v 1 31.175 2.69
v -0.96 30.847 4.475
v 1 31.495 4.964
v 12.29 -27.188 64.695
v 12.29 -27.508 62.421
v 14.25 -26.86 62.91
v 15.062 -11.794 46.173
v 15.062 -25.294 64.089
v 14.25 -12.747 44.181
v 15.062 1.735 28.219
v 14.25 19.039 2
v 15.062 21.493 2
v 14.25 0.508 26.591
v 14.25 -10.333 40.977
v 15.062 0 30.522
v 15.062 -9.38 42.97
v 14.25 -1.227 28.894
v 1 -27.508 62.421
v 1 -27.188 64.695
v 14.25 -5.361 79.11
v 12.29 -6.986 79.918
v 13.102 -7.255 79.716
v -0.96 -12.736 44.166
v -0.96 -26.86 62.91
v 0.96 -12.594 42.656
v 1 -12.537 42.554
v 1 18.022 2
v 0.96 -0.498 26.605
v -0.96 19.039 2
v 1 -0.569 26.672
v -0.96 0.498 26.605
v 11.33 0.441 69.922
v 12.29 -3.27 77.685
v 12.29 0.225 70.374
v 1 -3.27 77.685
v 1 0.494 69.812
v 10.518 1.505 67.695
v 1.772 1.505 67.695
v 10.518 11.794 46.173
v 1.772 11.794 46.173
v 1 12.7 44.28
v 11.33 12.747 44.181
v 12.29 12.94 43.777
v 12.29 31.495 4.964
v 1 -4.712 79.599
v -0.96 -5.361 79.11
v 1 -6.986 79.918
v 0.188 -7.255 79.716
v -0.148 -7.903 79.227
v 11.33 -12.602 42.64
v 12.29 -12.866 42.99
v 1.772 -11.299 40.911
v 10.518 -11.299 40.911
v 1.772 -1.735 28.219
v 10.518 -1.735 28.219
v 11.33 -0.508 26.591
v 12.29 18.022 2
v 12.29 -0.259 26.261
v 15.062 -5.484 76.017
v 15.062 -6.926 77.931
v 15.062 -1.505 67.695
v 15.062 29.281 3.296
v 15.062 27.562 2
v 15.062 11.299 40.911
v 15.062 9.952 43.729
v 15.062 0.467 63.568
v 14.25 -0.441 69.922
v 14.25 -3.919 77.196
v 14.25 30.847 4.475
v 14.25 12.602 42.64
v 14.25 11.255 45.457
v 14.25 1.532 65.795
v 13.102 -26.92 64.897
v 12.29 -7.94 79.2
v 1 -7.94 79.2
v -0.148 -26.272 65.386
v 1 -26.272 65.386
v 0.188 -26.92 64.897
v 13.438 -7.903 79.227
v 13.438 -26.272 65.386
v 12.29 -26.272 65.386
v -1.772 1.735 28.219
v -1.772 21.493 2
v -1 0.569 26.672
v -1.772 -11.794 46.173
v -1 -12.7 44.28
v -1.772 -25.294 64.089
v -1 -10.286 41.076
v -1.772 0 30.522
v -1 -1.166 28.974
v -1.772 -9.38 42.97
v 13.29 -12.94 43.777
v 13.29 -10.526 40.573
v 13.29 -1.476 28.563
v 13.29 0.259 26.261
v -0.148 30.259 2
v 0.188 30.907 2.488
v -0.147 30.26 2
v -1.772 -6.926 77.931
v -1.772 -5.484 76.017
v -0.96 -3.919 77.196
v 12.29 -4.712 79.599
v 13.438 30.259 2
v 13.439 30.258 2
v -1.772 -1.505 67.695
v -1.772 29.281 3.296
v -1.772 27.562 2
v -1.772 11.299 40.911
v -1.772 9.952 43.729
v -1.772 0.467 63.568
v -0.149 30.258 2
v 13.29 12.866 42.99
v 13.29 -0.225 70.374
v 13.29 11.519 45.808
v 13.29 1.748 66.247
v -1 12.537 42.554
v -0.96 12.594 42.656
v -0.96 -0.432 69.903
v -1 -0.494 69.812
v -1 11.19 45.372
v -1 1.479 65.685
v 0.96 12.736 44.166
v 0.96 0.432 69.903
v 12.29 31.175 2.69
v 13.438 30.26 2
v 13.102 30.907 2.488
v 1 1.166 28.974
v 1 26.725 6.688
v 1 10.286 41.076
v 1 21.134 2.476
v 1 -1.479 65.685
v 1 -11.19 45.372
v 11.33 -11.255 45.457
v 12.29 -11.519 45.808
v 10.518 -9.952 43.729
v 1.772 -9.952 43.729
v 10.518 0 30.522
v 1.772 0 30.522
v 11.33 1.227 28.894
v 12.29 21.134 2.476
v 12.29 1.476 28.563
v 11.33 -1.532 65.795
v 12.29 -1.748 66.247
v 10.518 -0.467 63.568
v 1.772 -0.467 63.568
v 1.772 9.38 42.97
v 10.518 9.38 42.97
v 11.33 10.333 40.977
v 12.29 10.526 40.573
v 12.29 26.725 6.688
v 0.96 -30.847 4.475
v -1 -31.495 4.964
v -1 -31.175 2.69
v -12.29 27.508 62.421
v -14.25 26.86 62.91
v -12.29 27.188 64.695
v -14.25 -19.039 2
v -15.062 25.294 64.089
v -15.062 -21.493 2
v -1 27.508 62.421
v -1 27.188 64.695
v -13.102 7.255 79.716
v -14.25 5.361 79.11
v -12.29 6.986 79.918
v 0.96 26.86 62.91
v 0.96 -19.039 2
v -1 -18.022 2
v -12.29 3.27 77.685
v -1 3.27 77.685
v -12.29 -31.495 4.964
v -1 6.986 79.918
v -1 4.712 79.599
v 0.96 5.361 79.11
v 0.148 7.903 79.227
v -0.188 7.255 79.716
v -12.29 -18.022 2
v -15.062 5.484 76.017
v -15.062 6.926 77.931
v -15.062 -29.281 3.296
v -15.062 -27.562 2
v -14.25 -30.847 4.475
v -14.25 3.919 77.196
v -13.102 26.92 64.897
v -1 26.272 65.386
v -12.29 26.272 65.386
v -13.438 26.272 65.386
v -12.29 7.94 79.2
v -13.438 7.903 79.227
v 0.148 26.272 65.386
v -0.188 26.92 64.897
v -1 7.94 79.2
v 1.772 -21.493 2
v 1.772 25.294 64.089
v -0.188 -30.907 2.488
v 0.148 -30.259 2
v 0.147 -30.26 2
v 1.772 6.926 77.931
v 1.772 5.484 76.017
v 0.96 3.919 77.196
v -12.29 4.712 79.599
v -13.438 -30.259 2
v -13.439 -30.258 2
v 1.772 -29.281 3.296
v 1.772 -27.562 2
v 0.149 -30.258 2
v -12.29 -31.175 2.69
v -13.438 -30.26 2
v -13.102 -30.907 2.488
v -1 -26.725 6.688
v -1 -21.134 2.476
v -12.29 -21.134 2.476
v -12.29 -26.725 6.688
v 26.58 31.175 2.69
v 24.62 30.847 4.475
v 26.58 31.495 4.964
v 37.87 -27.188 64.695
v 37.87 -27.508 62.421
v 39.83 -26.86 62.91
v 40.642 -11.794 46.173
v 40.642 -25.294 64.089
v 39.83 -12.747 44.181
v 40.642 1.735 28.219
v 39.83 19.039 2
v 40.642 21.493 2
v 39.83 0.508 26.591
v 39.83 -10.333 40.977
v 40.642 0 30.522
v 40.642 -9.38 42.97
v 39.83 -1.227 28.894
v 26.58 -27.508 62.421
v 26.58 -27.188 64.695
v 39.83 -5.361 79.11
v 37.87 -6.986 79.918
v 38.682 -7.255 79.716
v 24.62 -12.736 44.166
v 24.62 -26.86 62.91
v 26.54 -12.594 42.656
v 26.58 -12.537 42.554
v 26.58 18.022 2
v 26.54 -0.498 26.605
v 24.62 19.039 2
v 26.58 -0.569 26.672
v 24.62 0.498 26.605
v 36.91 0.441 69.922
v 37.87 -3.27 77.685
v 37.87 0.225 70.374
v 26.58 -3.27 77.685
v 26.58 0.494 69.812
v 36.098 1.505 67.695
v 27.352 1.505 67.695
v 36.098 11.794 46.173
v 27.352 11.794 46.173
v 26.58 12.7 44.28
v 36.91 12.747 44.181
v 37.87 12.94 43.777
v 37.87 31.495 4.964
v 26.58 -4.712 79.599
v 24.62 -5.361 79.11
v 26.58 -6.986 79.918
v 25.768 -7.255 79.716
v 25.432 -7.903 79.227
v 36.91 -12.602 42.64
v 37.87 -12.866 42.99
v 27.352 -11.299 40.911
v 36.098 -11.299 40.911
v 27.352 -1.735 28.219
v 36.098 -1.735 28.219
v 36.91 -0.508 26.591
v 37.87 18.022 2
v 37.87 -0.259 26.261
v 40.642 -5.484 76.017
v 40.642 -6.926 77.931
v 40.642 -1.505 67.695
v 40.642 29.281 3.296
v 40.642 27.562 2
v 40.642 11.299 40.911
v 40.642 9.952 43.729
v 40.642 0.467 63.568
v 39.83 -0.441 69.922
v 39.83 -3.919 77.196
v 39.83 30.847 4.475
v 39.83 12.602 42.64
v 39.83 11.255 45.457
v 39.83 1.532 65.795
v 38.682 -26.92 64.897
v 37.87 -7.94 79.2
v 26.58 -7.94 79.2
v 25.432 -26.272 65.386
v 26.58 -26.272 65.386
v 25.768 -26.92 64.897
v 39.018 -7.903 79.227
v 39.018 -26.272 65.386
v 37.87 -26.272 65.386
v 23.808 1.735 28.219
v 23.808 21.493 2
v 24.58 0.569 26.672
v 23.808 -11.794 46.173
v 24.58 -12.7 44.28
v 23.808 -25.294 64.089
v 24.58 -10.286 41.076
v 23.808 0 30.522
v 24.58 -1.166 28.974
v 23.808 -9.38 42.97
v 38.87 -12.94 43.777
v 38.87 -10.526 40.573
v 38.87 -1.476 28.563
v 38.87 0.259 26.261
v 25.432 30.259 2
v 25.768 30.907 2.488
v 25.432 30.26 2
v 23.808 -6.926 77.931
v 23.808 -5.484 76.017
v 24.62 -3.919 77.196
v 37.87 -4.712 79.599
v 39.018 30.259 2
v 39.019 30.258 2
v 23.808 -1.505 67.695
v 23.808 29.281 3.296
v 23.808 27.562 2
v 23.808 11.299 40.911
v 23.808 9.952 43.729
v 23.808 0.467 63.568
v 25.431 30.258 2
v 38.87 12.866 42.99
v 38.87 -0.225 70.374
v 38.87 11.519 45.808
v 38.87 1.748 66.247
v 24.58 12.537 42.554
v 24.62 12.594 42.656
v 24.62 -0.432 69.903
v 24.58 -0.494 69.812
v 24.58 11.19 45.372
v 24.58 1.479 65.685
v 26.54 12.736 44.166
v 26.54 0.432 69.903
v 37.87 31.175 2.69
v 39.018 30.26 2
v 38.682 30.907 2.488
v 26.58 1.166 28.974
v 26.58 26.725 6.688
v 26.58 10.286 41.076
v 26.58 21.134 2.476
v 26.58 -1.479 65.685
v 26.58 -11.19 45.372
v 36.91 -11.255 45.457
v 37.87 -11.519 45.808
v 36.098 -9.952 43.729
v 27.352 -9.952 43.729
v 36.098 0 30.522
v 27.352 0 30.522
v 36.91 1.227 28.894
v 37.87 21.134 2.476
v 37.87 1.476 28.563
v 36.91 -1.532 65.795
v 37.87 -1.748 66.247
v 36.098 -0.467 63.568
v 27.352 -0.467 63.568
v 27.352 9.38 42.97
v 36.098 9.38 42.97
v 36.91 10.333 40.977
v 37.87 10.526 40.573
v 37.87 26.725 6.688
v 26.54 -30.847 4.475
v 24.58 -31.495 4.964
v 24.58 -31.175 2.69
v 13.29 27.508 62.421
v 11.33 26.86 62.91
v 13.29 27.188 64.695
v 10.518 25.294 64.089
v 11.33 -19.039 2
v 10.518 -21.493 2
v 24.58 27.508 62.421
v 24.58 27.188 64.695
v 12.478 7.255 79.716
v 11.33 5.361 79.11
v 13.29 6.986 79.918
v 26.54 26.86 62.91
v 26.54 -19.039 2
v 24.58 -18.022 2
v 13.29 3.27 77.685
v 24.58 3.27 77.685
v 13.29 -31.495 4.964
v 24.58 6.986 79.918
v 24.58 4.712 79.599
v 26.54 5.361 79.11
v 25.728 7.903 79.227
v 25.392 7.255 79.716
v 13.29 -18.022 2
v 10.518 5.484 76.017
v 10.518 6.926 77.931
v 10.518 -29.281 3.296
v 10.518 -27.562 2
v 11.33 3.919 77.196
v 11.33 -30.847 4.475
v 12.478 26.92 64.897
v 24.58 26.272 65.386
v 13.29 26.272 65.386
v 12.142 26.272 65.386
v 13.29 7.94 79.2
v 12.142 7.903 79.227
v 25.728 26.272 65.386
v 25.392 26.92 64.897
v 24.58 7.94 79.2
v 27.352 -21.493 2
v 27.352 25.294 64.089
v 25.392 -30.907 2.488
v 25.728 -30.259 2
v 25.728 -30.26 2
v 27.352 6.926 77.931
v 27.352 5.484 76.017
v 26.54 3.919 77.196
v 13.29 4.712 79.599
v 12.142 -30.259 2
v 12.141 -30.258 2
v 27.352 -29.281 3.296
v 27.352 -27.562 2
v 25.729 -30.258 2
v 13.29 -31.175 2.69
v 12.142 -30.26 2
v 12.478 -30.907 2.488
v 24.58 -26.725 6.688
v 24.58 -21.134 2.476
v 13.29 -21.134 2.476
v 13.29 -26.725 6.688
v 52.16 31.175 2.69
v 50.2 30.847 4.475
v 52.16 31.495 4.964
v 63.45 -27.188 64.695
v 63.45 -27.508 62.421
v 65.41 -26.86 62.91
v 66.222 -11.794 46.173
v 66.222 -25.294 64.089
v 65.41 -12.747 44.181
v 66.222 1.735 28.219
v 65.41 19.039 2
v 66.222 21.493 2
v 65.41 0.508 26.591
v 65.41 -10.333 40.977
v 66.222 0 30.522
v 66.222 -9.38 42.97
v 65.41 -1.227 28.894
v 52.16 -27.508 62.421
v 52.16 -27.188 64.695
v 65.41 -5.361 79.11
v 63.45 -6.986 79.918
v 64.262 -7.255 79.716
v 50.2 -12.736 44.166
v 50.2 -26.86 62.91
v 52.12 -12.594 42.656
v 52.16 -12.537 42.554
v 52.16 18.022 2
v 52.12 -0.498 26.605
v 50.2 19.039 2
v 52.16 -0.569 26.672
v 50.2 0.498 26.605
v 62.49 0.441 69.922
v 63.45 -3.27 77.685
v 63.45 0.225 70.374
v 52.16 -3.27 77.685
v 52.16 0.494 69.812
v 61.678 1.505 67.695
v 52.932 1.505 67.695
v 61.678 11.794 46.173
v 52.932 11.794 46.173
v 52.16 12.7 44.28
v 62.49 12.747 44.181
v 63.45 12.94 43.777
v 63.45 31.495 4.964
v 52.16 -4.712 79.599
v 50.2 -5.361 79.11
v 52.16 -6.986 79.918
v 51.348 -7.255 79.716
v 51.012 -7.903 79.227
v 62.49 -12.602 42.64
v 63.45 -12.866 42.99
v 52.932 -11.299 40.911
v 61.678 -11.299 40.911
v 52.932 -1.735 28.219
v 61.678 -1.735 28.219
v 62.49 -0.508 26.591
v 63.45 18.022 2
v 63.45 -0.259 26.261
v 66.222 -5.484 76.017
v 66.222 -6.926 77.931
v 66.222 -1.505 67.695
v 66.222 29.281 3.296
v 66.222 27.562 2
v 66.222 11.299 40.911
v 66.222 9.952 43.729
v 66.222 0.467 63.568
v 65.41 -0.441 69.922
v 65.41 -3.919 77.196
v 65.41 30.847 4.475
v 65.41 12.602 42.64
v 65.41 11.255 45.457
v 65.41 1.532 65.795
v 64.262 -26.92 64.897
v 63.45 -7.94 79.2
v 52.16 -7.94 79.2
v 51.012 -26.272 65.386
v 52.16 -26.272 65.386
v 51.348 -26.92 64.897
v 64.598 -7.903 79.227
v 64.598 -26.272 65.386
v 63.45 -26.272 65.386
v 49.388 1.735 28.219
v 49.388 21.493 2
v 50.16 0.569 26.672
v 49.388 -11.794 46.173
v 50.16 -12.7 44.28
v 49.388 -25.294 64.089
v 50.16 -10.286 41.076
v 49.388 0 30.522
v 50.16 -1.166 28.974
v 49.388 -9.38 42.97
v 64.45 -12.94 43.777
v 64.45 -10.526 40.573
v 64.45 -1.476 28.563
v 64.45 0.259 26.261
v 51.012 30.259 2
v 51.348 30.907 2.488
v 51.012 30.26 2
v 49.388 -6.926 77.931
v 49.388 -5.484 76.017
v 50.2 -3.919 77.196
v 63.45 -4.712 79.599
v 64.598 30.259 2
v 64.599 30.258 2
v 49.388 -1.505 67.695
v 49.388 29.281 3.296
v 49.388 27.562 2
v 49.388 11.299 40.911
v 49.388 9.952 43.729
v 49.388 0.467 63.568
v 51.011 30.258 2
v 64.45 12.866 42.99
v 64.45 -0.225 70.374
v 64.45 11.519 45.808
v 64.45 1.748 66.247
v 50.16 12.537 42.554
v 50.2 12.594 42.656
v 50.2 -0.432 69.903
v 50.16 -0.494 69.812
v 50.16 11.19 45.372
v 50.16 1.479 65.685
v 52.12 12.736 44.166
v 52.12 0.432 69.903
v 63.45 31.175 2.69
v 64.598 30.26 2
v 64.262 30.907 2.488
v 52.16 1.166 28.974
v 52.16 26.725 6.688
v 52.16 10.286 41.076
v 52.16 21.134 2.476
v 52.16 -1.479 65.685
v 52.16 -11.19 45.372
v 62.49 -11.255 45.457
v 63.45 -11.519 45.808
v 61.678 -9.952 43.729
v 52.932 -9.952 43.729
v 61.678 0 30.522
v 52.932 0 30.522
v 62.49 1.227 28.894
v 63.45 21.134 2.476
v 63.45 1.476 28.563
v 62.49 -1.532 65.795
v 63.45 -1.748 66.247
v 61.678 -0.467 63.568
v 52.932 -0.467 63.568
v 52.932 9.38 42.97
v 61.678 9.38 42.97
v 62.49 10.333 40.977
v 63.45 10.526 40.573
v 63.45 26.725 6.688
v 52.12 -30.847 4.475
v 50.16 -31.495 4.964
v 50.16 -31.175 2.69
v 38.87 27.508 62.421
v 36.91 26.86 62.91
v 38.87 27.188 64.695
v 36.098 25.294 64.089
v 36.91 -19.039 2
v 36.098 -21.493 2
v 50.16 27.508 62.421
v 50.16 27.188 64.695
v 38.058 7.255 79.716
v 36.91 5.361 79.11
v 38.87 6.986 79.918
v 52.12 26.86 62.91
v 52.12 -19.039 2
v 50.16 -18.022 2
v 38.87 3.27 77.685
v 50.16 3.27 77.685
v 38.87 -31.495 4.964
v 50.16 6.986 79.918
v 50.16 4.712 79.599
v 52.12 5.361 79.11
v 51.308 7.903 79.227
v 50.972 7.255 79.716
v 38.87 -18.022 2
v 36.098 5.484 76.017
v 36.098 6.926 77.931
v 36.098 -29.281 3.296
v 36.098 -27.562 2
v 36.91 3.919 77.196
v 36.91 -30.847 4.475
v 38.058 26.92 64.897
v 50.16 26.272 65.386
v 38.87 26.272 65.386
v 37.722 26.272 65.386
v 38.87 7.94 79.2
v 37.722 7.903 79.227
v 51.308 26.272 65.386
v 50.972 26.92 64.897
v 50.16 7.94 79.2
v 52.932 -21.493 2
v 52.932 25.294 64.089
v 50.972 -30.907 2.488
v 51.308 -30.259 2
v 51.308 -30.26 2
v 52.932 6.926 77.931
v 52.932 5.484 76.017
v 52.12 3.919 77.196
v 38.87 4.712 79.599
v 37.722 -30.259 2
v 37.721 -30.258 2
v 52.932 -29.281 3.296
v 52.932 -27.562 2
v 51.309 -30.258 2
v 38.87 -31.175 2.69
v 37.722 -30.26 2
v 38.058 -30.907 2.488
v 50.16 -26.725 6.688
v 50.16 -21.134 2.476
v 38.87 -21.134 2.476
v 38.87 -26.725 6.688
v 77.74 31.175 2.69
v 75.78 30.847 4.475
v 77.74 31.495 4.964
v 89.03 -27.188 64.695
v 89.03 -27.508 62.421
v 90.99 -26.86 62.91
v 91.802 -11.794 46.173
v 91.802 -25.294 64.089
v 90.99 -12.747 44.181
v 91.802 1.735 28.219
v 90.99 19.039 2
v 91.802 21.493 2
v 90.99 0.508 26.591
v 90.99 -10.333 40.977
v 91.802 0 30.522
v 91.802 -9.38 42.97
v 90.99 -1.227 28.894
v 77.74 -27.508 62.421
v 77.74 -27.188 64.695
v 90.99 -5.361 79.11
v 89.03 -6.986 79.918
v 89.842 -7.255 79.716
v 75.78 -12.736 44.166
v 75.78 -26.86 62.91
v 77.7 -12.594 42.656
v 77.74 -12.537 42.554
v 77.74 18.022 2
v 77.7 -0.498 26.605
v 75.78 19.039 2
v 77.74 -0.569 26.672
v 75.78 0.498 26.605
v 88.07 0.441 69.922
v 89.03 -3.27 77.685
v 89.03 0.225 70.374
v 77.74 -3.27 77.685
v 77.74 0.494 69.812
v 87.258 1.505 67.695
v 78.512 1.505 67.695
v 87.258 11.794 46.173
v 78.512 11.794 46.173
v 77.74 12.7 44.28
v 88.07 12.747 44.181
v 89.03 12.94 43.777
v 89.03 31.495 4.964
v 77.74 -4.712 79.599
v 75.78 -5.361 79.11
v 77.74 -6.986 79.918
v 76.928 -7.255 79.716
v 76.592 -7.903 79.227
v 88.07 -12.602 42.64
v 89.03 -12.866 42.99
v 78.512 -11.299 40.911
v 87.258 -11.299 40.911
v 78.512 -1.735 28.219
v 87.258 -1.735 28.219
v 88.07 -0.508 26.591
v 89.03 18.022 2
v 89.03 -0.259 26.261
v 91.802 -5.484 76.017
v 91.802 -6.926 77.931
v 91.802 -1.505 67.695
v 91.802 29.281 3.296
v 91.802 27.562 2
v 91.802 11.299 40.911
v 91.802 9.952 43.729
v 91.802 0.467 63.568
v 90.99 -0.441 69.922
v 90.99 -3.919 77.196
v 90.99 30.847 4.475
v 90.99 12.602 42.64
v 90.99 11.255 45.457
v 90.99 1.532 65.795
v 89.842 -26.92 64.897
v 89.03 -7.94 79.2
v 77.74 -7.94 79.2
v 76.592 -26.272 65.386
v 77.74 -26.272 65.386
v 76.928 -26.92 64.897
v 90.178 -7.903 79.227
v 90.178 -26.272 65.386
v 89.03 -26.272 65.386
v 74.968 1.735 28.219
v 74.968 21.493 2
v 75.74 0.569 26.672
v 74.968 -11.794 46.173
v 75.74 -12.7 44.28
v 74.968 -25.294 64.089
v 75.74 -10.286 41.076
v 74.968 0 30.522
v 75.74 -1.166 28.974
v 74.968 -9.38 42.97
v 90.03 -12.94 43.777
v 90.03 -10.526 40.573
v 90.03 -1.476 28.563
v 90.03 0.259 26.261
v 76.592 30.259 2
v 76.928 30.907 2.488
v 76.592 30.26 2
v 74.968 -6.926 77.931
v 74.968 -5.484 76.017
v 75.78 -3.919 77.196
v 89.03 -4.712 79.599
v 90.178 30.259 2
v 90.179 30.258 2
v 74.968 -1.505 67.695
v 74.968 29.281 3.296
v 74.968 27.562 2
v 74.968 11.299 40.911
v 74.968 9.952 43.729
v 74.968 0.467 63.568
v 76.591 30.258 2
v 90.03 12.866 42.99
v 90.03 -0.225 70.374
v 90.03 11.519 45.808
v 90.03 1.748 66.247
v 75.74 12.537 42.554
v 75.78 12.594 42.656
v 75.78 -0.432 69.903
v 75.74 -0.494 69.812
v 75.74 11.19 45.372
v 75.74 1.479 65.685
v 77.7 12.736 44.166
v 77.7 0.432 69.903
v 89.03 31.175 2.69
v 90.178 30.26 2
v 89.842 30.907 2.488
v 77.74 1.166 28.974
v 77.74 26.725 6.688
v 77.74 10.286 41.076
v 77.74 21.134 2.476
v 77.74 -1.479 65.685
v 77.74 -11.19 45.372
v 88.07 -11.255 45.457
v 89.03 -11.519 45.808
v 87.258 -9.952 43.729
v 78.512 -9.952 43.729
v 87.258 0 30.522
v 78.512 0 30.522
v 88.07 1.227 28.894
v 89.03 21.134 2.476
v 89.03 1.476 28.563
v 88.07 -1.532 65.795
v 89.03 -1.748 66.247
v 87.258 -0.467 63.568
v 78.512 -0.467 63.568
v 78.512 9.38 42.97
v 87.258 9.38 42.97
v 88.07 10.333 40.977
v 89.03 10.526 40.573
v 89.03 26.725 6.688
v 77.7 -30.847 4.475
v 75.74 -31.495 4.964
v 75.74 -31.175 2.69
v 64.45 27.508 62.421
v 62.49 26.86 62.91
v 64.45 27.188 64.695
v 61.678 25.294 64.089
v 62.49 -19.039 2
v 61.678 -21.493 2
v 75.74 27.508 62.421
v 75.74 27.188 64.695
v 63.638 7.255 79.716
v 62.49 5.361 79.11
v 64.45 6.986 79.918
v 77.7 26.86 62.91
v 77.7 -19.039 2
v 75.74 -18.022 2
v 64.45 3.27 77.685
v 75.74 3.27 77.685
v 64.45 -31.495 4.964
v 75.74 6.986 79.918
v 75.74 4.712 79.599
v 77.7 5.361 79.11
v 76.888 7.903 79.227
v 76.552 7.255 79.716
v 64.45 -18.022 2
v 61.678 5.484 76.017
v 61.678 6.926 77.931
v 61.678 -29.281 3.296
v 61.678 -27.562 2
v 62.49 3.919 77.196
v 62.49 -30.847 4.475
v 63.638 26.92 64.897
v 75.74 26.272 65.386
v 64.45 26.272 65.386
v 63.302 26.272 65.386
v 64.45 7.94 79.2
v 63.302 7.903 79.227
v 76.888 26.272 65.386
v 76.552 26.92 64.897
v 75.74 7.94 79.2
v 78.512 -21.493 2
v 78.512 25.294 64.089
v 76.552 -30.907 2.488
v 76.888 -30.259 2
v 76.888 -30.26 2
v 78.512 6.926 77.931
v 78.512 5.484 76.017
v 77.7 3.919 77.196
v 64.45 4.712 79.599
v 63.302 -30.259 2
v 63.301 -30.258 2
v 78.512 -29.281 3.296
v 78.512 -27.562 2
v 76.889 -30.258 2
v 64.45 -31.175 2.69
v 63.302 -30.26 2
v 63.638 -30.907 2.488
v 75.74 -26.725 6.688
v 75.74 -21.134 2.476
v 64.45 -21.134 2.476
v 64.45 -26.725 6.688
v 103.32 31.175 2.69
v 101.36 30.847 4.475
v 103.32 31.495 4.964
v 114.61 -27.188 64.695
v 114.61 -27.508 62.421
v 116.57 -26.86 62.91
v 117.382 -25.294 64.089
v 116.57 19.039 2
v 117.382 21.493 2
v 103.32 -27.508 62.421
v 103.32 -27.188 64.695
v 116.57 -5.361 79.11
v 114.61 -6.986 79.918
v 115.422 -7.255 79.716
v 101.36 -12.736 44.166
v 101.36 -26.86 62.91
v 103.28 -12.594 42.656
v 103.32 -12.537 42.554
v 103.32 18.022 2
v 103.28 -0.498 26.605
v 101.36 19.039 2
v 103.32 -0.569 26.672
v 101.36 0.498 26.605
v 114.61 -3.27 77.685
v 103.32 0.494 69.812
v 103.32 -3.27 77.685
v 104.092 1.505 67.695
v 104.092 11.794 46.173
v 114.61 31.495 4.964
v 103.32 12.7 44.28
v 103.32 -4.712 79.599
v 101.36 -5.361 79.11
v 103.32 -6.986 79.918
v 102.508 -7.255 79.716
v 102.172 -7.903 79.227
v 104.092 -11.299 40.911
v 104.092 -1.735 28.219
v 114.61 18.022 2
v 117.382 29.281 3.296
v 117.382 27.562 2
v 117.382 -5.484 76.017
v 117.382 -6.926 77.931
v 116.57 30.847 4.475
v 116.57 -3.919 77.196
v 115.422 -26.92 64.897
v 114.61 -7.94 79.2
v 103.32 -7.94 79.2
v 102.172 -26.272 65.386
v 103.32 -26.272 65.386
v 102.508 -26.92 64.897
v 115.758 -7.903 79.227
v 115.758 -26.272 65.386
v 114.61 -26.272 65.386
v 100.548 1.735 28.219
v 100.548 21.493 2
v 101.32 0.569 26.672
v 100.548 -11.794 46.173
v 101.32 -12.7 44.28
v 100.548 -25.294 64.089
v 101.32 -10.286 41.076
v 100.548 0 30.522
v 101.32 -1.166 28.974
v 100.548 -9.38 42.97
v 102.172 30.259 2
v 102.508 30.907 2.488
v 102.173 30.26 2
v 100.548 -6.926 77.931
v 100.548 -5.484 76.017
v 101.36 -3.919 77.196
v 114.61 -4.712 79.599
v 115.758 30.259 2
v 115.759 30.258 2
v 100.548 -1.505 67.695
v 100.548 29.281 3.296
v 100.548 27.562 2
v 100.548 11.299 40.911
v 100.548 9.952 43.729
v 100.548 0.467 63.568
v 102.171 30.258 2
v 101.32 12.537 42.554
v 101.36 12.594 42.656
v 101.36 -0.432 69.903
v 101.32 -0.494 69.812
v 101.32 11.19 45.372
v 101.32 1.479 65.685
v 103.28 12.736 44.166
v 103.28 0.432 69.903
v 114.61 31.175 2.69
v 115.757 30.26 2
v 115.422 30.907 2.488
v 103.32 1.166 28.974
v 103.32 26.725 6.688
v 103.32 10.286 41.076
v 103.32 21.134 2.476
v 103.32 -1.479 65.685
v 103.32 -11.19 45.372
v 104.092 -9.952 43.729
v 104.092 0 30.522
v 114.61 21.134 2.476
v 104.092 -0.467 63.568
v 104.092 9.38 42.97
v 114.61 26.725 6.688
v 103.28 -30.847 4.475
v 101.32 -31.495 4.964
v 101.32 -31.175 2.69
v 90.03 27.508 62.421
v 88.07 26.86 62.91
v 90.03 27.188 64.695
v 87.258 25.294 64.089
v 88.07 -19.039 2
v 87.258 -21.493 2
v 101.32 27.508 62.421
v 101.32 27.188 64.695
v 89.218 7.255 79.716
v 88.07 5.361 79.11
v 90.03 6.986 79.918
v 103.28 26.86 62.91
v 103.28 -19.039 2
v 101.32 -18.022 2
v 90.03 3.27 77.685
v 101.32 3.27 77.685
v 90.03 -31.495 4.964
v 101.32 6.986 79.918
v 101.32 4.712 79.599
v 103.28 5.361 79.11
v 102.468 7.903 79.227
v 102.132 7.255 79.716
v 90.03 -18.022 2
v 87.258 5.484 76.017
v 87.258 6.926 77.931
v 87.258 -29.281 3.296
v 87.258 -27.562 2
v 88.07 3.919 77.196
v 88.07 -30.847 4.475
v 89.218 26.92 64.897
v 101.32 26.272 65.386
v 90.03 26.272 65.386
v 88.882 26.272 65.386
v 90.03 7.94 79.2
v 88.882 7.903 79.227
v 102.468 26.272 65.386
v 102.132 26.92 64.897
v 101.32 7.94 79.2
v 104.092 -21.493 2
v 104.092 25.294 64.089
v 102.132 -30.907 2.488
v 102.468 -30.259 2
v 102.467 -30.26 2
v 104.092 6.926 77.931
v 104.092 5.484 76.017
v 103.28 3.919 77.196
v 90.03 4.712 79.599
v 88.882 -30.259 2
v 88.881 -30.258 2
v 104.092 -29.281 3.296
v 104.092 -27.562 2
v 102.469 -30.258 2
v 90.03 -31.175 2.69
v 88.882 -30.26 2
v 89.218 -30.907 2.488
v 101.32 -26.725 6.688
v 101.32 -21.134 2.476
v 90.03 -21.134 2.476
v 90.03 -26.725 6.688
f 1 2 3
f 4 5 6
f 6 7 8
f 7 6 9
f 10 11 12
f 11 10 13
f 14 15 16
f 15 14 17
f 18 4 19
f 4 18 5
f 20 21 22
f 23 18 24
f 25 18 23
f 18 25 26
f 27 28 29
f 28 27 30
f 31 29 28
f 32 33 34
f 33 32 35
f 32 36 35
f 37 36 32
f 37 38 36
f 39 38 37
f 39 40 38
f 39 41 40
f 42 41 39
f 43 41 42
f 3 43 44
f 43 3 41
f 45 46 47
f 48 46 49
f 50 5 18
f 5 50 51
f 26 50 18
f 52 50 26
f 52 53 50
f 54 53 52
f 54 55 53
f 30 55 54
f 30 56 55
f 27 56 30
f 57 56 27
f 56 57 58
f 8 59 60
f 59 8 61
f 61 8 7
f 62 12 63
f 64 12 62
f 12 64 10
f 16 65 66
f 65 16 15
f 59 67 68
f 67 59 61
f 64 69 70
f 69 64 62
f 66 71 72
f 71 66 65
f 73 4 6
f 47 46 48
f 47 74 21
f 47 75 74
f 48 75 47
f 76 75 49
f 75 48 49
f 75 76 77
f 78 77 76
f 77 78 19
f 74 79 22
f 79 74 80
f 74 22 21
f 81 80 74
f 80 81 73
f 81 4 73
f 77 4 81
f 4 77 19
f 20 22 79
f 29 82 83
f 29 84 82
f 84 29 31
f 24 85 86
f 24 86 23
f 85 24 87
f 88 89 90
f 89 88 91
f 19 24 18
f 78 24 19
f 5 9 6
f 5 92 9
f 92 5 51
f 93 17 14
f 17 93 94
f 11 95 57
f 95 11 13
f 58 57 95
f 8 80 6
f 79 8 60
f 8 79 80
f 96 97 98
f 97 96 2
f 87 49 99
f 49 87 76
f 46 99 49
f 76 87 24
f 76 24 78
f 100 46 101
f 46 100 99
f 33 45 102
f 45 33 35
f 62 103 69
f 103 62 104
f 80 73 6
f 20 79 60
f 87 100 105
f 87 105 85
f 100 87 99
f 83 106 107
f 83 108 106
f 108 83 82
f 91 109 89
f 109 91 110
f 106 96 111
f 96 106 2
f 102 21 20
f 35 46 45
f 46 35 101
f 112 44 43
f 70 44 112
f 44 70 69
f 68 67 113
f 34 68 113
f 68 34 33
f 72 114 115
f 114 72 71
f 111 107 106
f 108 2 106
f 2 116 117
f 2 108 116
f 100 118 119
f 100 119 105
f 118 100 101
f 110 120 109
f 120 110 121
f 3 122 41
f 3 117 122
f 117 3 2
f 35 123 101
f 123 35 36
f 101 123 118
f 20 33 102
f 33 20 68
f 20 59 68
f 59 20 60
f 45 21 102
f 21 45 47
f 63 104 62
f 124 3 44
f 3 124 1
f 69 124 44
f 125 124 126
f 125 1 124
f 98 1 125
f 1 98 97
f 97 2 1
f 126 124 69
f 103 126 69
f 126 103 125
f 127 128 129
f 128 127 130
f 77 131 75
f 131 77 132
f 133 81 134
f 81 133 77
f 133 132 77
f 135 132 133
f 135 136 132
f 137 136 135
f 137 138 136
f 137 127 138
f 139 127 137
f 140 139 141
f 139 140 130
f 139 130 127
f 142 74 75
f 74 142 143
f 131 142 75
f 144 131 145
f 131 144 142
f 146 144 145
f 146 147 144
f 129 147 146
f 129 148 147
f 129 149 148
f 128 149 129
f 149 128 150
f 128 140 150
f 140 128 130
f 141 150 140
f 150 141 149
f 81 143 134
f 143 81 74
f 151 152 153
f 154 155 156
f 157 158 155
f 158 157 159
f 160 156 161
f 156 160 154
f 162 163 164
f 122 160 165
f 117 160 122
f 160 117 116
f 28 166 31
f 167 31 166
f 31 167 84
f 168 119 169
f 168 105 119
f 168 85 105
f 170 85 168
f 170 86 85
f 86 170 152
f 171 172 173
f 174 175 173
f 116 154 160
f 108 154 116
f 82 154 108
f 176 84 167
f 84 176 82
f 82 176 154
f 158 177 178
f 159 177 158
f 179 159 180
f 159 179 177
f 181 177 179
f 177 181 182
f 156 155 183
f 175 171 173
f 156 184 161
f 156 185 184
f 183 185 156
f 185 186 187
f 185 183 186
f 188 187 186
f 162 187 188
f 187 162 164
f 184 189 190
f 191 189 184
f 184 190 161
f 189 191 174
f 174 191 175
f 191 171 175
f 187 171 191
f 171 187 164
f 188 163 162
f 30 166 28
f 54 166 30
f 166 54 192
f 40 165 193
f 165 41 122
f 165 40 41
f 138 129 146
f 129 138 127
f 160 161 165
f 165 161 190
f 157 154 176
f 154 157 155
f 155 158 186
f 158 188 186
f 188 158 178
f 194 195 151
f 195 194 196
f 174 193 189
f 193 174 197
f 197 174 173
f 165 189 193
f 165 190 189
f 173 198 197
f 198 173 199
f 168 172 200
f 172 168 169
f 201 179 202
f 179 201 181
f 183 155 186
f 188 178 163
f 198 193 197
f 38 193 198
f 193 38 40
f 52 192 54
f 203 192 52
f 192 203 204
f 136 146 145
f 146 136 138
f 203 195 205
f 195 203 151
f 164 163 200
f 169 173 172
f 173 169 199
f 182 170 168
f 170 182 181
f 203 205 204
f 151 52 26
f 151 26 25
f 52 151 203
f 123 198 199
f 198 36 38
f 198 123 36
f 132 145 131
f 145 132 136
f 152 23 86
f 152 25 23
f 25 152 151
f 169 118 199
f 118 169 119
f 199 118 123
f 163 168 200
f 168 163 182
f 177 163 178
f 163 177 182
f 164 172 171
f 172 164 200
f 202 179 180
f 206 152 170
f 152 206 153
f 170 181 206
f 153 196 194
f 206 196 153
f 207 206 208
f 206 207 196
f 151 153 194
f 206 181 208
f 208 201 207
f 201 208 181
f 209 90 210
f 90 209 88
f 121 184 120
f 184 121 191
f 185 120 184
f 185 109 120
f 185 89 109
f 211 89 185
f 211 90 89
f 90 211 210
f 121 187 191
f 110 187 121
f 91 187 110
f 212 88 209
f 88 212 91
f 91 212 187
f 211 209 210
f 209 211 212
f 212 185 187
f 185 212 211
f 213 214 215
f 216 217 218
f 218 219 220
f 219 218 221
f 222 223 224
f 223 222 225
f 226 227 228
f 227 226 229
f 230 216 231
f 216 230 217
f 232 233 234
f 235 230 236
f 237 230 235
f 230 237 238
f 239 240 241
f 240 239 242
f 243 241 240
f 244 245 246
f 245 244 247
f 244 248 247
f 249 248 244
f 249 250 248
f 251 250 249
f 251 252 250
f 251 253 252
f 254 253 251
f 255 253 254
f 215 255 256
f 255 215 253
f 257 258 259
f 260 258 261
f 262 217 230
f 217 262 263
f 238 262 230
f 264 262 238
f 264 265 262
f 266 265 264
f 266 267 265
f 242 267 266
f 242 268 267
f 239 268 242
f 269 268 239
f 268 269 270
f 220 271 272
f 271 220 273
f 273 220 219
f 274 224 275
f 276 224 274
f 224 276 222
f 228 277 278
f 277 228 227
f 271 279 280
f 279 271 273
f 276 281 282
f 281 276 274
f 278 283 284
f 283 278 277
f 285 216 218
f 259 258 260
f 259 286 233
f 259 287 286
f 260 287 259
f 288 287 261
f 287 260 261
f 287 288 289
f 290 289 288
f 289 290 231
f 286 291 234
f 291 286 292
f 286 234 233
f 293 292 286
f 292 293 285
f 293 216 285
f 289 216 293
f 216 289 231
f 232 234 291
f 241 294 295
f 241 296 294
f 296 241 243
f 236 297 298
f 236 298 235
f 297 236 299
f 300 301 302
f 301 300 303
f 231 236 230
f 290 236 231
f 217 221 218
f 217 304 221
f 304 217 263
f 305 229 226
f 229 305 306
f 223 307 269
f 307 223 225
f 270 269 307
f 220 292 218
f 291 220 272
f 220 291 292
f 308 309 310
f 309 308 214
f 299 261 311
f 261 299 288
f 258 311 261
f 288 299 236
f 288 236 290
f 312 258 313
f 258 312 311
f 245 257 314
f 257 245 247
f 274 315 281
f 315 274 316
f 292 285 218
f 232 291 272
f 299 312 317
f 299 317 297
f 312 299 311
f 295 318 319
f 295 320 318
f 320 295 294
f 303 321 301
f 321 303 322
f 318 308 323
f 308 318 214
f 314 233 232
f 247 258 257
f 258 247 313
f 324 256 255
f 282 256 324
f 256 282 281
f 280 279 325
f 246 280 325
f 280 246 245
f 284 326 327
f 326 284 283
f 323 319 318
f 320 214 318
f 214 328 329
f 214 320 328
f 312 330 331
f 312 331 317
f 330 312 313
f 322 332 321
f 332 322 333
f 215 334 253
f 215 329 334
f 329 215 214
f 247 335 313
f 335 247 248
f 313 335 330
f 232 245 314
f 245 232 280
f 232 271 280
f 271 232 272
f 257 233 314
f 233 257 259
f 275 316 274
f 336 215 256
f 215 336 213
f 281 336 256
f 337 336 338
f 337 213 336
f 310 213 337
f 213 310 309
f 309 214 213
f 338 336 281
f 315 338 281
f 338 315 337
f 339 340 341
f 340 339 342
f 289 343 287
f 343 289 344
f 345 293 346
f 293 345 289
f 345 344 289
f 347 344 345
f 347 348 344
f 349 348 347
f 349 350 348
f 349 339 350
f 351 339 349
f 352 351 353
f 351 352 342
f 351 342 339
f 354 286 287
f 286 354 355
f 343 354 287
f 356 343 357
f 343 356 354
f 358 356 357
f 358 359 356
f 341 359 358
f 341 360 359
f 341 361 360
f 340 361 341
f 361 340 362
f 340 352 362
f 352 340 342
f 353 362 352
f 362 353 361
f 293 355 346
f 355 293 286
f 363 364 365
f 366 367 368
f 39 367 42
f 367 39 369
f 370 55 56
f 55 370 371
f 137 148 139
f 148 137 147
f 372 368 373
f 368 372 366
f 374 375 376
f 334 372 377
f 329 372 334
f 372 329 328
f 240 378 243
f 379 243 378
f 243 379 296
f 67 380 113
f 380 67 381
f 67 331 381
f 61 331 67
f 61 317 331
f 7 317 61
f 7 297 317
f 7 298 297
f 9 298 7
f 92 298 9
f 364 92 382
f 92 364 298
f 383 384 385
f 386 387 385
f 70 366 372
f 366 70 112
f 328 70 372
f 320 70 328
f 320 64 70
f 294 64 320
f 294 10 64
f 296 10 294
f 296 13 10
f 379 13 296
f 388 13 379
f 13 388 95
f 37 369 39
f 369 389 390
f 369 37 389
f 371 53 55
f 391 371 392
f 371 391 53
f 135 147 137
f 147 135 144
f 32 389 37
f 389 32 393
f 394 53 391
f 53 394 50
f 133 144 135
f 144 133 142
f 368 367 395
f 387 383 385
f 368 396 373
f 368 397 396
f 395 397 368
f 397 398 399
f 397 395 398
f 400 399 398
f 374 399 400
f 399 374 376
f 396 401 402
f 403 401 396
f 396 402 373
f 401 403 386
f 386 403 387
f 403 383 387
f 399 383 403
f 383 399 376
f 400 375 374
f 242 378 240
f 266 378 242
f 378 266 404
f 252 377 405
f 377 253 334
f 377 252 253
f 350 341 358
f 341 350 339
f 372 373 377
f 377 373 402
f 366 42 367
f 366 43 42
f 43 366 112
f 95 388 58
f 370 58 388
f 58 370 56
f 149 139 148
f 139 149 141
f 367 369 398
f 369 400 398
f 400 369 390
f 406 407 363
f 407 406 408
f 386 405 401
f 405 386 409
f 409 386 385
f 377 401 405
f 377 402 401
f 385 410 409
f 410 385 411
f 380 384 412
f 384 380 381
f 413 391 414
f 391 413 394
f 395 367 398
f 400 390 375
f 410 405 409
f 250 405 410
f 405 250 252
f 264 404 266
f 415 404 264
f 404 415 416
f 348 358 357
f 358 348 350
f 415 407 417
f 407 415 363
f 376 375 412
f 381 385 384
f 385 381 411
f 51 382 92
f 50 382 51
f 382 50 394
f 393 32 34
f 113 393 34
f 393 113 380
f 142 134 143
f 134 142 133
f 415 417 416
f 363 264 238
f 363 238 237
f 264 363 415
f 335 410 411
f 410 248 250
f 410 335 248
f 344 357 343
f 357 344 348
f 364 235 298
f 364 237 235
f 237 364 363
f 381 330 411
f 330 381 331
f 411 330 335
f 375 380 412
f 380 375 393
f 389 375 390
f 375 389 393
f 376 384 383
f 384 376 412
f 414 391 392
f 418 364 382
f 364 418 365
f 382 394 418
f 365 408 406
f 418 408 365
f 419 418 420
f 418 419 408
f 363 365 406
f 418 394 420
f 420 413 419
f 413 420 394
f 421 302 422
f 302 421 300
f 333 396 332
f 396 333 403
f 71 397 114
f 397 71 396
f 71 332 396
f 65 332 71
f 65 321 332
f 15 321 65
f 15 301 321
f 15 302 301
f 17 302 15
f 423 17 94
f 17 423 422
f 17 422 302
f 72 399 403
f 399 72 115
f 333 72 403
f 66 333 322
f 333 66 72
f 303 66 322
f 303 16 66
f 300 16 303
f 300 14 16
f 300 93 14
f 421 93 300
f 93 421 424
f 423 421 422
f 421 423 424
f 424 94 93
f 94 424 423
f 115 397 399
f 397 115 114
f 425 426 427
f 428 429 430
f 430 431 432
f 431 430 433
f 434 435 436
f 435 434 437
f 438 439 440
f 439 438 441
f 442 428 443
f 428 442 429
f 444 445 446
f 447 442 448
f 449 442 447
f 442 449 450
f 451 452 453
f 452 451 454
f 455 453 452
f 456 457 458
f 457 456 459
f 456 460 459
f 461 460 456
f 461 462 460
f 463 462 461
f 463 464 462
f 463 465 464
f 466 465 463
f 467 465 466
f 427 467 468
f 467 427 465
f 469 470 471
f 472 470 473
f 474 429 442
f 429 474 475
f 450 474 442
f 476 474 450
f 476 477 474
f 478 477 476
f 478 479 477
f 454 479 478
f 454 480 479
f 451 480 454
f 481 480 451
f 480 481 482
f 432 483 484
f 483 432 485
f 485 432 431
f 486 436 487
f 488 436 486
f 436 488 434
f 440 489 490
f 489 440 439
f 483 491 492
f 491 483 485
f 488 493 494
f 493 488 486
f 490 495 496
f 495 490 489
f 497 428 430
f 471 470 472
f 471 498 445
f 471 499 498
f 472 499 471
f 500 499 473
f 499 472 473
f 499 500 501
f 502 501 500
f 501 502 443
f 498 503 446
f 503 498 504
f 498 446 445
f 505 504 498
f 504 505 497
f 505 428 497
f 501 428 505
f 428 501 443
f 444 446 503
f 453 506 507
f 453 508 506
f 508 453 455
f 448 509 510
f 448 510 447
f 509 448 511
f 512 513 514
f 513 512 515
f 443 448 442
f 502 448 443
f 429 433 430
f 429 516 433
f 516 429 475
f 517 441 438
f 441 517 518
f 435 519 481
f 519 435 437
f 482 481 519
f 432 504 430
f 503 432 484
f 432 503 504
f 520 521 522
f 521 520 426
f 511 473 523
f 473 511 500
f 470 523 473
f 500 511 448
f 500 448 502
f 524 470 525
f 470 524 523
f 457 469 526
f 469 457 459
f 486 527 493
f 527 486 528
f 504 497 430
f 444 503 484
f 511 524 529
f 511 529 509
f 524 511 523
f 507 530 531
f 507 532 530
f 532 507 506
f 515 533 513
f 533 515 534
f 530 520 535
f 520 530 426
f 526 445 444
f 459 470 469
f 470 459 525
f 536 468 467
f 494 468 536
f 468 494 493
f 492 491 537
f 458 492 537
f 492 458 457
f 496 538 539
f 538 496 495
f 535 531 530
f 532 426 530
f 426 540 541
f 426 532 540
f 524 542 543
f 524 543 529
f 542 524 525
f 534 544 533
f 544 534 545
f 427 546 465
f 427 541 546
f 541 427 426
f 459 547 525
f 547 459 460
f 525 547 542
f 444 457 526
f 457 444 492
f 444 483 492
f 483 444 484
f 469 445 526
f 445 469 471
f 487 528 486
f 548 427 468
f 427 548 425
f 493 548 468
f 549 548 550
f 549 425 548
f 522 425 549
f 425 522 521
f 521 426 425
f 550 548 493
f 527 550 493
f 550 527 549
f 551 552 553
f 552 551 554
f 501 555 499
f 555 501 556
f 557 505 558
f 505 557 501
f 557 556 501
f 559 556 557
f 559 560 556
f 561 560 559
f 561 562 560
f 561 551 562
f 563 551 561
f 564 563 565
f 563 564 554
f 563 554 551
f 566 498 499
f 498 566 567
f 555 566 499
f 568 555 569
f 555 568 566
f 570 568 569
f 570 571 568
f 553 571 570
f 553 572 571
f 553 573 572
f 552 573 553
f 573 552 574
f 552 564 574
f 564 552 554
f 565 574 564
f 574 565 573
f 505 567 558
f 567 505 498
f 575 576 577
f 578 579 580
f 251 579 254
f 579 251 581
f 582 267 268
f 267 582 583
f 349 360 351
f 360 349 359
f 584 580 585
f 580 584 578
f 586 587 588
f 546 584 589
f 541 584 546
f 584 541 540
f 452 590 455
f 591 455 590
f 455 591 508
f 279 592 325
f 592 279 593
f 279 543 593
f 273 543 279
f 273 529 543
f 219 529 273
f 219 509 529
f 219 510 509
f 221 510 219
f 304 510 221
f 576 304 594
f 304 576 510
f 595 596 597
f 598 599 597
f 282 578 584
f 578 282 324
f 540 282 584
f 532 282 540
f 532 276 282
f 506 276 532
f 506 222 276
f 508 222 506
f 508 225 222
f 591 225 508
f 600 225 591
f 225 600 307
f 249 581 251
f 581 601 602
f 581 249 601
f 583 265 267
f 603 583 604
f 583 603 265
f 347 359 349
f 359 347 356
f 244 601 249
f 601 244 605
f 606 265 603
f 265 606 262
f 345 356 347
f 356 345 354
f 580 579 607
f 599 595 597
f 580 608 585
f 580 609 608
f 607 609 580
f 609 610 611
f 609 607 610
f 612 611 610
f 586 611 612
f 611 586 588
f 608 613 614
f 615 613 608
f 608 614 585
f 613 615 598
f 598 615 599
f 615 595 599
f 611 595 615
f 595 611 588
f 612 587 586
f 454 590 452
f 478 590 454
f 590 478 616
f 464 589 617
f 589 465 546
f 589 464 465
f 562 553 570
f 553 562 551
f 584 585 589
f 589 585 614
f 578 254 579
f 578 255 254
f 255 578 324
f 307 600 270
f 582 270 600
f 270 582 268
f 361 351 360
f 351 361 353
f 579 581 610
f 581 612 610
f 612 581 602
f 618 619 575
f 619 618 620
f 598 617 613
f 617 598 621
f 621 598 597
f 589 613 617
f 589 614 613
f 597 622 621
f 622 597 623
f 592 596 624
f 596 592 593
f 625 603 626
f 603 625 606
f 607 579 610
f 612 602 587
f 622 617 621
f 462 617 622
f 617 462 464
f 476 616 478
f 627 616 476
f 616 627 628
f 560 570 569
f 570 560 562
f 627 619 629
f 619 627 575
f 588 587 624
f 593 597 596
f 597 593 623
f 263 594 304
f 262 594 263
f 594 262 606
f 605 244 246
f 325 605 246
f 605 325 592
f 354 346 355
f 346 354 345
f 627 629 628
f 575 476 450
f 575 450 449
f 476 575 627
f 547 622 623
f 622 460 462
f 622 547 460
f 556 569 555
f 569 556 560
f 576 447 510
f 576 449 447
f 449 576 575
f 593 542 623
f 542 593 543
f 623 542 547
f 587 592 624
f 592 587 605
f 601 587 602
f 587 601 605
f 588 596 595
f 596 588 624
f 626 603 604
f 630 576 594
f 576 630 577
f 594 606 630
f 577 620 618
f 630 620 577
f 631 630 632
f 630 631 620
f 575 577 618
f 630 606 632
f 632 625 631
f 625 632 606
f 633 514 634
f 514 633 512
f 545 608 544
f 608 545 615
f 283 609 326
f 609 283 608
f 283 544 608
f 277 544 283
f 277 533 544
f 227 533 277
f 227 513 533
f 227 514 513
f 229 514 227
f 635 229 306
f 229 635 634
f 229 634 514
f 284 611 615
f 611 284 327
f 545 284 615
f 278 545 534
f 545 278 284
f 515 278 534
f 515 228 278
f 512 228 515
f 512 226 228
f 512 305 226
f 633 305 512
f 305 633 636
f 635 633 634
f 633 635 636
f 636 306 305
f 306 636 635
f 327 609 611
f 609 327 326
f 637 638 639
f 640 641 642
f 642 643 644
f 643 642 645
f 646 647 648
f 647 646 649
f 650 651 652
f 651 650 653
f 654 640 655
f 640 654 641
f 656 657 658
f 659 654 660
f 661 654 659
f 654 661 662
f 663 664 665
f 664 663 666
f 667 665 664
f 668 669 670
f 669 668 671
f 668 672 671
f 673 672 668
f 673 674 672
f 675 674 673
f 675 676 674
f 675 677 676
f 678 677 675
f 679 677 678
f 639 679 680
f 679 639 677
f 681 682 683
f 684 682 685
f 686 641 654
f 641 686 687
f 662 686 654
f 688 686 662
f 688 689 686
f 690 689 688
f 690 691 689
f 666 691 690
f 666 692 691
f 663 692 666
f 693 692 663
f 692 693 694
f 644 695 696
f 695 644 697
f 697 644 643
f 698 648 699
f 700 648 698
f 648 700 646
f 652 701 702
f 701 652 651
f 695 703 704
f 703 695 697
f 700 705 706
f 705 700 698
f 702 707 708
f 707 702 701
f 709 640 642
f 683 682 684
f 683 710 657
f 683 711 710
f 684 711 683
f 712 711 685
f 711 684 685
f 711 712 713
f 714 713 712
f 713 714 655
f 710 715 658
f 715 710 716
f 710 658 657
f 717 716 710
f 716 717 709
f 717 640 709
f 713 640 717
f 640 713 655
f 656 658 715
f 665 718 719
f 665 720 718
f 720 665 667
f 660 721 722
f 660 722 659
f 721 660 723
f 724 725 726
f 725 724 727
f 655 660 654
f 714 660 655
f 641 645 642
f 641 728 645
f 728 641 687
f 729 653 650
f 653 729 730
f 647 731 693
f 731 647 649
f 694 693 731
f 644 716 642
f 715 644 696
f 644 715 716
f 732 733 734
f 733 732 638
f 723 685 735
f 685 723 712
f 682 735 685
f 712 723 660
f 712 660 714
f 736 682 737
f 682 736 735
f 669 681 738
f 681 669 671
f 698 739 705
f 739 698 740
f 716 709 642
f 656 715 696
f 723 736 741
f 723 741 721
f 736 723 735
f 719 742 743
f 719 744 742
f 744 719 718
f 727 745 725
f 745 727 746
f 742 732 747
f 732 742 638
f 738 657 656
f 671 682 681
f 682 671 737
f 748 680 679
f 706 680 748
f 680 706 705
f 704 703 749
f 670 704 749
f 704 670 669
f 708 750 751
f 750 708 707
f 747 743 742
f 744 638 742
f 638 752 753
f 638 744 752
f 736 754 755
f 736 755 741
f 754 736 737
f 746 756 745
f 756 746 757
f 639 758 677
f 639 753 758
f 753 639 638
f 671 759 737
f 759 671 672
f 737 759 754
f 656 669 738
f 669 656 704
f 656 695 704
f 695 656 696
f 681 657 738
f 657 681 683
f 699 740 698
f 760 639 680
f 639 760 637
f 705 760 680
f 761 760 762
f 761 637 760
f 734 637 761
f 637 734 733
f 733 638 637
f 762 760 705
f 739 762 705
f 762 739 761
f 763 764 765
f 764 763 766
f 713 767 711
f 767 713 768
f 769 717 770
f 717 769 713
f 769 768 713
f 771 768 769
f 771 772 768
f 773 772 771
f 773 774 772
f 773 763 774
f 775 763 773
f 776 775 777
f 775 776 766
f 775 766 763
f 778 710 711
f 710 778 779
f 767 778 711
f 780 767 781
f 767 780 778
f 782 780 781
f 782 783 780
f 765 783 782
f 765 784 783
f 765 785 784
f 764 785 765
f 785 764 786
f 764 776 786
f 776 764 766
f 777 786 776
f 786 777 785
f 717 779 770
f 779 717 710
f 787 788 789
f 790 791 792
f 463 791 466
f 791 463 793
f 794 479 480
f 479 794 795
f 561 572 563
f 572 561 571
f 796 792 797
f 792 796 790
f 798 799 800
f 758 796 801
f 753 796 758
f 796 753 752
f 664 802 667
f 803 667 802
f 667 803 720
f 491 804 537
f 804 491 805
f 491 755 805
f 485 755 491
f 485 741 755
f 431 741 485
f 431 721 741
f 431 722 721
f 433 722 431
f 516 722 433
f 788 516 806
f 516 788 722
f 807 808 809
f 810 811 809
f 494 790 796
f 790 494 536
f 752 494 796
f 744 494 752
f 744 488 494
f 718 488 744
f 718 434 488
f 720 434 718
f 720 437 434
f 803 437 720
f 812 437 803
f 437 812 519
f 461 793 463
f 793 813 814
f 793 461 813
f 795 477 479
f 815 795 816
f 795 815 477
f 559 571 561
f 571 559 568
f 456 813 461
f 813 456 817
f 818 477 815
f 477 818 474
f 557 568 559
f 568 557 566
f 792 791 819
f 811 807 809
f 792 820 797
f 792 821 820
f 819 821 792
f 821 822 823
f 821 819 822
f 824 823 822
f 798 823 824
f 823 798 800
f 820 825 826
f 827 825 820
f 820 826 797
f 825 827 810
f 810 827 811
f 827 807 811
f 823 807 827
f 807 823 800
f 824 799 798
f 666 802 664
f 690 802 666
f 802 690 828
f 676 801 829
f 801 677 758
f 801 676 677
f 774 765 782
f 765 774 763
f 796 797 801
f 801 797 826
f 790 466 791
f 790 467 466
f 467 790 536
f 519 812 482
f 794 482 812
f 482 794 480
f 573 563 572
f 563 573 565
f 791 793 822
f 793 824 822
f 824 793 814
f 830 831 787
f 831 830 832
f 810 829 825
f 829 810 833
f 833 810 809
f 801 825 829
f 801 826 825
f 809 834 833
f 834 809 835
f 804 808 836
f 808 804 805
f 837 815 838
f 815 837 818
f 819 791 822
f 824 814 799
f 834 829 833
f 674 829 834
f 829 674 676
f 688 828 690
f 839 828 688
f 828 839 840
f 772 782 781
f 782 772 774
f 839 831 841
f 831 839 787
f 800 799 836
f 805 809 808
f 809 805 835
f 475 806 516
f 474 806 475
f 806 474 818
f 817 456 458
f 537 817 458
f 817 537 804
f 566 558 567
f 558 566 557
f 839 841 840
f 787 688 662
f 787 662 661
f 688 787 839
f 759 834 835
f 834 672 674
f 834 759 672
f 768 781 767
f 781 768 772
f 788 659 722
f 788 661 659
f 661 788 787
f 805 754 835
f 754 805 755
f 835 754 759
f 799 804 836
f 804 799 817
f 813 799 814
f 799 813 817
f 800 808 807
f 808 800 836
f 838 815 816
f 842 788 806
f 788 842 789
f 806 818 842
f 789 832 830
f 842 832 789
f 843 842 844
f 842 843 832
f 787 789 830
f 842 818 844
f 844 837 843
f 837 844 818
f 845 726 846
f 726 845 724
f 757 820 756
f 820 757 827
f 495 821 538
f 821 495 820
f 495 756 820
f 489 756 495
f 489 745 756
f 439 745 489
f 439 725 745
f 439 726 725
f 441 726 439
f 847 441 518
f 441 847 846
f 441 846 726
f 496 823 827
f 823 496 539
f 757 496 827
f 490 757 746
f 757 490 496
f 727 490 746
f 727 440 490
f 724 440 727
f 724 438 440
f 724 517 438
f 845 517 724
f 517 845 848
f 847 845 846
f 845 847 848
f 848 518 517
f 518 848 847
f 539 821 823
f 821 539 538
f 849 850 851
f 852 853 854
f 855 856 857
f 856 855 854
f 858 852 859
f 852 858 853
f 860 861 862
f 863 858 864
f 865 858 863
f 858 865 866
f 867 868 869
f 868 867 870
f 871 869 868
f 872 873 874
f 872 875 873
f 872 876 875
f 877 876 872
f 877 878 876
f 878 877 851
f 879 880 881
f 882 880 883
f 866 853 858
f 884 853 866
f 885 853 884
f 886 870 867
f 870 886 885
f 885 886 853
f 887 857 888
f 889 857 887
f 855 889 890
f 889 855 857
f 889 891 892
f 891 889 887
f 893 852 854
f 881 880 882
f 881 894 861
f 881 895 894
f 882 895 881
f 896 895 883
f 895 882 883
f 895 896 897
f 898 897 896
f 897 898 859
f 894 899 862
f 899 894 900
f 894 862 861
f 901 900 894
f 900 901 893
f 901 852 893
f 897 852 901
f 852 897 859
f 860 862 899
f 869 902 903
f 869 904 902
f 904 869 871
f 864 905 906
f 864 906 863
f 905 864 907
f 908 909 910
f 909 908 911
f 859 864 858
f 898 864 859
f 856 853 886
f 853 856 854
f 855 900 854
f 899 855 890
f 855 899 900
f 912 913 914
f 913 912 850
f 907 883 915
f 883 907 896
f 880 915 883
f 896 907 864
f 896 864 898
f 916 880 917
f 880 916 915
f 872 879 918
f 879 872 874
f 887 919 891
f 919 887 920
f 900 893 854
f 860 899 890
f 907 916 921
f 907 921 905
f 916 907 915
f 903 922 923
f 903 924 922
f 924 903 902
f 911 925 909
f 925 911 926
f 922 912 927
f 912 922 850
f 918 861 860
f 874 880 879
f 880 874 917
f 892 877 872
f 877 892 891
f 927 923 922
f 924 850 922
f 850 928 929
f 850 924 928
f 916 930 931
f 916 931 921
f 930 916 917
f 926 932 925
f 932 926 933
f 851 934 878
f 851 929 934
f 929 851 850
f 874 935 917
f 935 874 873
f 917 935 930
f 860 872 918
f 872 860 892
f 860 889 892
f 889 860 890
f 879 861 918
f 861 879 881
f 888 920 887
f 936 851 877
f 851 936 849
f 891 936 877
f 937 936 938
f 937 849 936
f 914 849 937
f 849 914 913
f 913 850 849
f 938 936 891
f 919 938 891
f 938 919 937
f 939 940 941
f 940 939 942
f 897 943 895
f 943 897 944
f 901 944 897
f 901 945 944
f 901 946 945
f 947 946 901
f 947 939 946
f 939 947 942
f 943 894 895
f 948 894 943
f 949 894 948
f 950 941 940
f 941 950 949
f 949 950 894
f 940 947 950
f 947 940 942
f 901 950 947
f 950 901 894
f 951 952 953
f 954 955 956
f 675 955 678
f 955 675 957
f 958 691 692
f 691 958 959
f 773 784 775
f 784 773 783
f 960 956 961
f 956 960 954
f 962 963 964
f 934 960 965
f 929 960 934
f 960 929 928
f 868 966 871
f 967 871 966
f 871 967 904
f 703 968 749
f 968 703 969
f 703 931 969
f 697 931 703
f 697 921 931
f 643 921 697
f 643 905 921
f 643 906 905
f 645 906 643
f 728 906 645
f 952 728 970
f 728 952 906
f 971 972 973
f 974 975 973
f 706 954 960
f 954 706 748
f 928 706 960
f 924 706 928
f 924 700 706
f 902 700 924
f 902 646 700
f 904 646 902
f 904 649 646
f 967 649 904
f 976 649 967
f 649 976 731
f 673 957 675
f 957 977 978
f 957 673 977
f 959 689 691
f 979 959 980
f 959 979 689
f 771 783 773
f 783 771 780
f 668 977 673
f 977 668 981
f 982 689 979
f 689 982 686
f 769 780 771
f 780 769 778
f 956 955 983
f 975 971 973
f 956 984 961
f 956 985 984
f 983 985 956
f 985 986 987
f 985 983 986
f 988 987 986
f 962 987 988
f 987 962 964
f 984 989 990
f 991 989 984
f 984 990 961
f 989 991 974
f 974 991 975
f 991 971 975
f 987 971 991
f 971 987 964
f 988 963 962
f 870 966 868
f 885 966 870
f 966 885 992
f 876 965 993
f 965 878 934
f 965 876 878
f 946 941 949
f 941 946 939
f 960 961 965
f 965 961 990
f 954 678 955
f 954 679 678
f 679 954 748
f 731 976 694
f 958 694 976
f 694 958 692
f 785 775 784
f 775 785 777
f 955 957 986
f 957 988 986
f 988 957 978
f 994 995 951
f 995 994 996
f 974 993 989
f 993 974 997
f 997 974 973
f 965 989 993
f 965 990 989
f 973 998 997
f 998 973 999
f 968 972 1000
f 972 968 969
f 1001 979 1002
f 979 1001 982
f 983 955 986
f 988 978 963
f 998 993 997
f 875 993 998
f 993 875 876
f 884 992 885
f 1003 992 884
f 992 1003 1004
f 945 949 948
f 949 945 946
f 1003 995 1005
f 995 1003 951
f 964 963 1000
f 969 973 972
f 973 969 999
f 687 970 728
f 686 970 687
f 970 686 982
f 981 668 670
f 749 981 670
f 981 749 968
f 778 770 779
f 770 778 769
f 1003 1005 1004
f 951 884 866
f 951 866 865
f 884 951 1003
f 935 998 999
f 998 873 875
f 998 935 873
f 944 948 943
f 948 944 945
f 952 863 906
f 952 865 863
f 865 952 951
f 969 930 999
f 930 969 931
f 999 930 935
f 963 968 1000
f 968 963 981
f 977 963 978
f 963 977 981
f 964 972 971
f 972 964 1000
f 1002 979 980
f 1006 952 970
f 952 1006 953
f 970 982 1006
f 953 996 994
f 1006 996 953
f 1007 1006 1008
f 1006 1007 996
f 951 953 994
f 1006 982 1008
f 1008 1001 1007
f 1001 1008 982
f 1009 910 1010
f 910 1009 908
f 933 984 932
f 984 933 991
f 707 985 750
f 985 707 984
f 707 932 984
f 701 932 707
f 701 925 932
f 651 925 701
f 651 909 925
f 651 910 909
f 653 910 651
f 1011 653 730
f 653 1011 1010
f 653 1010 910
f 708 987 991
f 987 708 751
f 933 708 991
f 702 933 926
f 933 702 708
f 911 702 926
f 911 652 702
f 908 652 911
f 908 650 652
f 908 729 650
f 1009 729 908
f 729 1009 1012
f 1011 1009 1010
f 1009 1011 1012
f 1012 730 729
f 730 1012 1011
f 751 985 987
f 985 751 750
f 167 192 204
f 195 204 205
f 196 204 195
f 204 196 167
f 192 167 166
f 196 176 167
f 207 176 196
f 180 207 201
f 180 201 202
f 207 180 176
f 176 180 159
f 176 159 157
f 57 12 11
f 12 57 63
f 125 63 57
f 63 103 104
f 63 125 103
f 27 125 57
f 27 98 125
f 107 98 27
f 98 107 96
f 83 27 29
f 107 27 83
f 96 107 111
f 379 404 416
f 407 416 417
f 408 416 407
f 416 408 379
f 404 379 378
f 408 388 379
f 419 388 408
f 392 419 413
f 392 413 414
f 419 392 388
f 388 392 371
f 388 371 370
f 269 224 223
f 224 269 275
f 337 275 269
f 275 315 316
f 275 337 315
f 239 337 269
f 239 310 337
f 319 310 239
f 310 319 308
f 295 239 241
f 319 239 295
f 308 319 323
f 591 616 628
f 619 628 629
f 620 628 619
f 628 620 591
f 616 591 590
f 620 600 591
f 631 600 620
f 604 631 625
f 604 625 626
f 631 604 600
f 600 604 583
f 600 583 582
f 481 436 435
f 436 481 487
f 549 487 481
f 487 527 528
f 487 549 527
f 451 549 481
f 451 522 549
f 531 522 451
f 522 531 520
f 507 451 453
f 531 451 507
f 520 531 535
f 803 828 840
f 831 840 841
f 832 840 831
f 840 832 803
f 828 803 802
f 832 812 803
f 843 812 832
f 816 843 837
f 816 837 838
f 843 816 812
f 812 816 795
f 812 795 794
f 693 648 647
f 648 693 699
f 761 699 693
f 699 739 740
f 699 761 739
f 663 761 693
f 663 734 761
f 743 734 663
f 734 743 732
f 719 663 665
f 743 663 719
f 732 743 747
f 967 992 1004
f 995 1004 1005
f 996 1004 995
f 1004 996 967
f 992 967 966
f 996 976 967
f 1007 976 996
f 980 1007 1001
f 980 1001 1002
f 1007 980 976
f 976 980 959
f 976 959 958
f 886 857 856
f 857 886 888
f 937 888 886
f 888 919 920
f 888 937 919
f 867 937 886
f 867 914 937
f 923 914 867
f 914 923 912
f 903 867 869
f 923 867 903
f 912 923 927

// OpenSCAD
scissor_x = 11.29;
scissor_y = 23;
scissor_taper = 7;
scissor_z = 79;

scissor_a = 37;

wall = 3;
difference(){
    four_pair();
    translate([0,0,-200+2]) cube([400,400,400], center=true);
}


module four_pair(){
    
    for(i=[0:4]) translate([i*(scissor_x*2+wall),0,0]) scissor_pair();
}

module scissor_pair(){
    difference(){
        union(){
            for(i=[0,180]) rotate([0,0,i]) translate([1,23,0]) rotate([scissor_a,0,0]) scissor_holster();
        }
    }
}

module scissor_holster(min_rad = wall){
    difference(){
        minkowski(){
            scissor_hole();
            sphere(r=min_rad, $fn=8);
        }
        
        translate([0,0,min_rad+.1]) scissor_hole();
    }
}

module scissor_hole(){
    hull(){
        cube([scissor_x,scissor_taper,.1]);
        translate([0,0,scissor_z]) cube([scissor_x,scissor_y,.1]);
    }
}
